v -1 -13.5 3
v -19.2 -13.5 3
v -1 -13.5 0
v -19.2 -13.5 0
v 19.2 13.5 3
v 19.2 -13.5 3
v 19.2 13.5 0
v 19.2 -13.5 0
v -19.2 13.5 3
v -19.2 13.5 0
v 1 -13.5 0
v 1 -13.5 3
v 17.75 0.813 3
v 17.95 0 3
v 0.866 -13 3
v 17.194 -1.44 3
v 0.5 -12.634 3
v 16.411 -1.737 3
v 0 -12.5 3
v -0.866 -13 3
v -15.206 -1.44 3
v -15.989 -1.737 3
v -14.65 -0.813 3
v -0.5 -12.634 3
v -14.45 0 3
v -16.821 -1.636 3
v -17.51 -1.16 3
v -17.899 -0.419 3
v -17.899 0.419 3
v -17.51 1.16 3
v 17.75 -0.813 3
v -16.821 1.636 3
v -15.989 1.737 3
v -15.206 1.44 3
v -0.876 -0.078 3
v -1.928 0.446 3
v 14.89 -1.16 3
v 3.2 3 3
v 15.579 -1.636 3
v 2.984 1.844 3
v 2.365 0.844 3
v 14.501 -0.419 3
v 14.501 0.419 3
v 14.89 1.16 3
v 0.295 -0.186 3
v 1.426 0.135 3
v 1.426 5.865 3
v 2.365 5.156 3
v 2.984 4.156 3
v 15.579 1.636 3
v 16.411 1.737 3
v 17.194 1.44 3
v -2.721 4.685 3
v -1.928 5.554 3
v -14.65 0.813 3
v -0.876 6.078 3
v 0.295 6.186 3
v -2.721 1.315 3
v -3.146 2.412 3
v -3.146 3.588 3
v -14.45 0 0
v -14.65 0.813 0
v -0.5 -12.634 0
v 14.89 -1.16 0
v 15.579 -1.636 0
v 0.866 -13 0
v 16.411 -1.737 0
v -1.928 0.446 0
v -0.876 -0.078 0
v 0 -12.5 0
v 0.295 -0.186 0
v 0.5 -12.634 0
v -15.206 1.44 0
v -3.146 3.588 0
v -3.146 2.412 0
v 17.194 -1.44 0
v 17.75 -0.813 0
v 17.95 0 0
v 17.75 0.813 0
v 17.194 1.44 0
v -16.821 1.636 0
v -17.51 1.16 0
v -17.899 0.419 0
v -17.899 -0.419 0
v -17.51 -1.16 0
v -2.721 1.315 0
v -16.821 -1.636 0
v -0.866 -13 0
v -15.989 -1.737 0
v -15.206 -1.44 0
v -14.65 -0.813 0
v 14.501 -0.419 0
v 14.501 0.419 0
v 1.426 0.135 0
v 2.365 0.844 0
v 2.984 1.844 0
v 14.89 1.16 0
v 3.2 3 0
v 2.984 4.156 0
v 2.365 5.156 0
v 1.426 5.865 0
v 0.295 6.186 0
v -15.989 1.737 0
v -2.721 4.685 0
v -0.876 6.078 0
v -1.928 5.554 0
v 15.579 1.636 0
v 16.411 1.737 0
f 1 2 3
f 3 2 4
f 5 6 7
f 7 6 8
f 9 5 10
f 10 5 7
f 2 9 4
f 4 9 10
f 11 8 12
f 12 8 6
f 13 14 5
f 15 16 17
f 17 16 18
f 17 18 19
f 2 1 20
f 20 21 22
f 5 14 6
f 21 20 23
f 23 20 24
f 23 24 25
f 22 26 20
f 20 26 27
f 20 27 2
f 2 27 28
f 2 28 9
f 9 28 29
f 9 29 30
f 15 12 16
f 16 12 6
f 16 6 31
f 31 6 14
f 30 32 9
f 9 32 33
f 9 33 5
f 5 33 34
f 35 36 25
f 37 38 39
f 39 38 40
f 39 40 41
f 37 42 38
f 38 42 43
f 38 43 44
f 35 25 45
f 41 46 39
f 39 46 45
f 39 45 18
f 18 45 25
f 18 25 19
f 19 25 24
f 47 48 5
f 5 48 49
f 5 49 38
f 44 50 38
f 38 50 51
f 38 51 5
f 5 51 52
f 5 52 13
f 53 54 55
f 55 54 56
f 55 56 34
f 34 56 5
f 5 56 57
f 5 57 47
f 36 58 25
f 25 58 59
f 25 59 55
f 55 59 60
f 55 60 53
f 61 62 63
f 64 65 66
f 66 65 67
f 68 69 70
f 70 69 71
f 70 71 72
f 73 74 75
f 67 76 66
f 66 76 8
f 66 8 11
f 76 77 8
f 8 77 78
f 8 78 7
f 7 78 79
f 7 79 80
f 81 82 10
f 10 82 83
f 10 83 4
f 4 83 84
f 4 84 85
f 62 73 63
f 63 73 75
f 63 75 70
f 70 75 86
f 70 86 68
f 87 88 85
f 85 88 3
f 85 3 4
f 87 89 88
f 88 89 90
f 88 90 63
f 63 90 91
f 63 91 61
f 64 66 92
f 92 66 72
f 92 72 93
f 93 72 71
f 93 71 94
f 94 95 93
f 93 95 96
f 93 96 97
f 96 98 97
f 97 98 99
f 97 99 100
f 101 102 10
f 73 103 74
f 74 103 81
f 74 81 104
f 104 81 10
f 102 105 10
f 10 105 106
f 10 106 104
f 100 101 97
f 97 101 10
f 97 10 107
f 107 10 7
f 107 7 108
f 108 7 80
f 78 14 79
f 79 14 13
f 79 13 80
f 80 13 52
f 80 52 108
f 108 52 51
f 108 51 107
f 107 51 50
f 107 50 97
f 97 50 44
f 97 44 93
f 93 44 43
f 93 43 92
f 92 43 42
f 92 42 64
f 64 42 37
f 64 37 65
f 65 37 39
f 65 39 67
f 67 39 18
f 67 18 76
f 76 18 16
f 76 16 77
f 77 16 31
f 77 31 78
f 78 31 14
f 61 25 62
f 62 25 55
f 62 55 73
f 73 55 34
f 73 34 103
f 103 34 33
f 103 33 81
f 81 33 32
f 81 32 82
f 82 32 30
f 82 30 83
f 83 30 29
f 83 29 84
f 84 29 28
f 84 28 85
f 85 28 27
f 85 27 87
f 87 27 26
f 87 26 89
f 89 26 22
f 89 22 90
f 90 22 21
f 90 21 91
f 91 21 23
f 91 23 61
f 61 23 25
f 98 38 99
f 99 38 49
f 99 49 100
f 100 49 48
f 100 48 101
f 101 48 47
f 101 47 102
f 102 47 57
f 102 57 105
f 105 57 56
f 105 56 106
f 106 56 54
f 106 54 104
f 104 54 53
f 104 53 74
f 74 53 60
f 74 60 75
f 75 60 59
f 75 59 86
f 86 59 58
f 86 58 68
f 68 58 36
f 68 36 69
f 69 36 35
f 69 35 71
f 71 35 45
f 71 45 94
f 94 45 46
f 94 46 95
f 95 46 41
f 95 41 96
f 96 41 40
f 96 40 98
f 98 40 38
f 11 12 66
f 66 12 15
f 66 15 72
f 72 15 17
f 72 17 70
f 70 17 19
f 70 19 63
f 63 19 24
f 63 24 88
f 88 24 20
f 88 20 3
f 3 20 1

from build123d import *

# Parameters (mm, degrees)
SKETCH_1_W          = 38.4
SKETCH_1_H          = 27
EXTRUDE_1_DEPTH     = 3
SKETCH_2_R          = 1.75
CUT_EXTRUDE_1_DEPTH = 4
SKETCH_3_R          = 3.2
CUT_EXTRUDE_2_DEPTH = 4
SKETCH_4_R          = 1
CUT_EXTRUDE_3_DEPTH = 4


with BuildPart() as part:
    # ｽｹｯﾁ1 → ﾎﾞｽ - 押し出し1 (new body)
    with BuildSketch(Plane.XY):
        Rectangle(SKETCH_1_W, SKETCH_1_H)
    extrude(amount=EXTRUDE_1_DEPTH)

    # ｽｹｯﾁ2 → ｶｯﾄ - 押し出し1 (cut, through all)
    with BuildSketch(Plane.XY.offset(3)):
        with Locations((16.2, 0)):
            Circle(SKETCH_2_R)
        with Locations((-16.2, 0)):
            Circle(SKETCH_2_R)
    extrude(amount=-CUT_EXTRUDE_1_DEPTH, mode=Mode.SUBTRACT)

    # ｽｹｯﾁ3 → ｶｯﾄ - 押し出し2 (cut, through all)
    with BuildSketch(Plane.XY.offset(3)):
        with Locations((0, 3)):
            Circle(SKETCH_3_R)
    extrude(amount=-CUT_EXTRUDE_2_DEPTH, mode=Mode.SUBTRACT)

    # ｽｹｯﾁ4 → ｶｯﾄ - 押し出し3 (cut, through all)
    with BuildSketch(Plane.XY.offset(3)):
        with Locations((0, -13.5)):
            Circle(SKETCH_4_R)
    extrude(amount=-CUT_EXTRUDE_3_DEPTH, mode=Mode.SUBTRACT)


solid = part.part
